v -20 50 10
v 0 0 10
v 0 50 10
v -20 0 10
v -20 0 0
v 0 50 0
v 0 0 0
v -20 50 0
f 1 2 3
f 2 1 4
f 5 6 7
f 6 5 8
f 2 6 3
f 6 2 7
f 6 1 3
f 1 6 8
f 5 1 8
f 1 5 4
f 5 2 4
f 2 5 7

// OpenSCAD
// Define dimensions for the rectangular block
block_length = 50;  // Length of the block
block_width = 20;   // Width of the block
block_height = 10;  // Height of the block

// Adjust the orientation of the rectangular block
rotate([0, 0, 90])  // Rotate the block to align it vertically
cube([block_length, block_width, block_height]);
